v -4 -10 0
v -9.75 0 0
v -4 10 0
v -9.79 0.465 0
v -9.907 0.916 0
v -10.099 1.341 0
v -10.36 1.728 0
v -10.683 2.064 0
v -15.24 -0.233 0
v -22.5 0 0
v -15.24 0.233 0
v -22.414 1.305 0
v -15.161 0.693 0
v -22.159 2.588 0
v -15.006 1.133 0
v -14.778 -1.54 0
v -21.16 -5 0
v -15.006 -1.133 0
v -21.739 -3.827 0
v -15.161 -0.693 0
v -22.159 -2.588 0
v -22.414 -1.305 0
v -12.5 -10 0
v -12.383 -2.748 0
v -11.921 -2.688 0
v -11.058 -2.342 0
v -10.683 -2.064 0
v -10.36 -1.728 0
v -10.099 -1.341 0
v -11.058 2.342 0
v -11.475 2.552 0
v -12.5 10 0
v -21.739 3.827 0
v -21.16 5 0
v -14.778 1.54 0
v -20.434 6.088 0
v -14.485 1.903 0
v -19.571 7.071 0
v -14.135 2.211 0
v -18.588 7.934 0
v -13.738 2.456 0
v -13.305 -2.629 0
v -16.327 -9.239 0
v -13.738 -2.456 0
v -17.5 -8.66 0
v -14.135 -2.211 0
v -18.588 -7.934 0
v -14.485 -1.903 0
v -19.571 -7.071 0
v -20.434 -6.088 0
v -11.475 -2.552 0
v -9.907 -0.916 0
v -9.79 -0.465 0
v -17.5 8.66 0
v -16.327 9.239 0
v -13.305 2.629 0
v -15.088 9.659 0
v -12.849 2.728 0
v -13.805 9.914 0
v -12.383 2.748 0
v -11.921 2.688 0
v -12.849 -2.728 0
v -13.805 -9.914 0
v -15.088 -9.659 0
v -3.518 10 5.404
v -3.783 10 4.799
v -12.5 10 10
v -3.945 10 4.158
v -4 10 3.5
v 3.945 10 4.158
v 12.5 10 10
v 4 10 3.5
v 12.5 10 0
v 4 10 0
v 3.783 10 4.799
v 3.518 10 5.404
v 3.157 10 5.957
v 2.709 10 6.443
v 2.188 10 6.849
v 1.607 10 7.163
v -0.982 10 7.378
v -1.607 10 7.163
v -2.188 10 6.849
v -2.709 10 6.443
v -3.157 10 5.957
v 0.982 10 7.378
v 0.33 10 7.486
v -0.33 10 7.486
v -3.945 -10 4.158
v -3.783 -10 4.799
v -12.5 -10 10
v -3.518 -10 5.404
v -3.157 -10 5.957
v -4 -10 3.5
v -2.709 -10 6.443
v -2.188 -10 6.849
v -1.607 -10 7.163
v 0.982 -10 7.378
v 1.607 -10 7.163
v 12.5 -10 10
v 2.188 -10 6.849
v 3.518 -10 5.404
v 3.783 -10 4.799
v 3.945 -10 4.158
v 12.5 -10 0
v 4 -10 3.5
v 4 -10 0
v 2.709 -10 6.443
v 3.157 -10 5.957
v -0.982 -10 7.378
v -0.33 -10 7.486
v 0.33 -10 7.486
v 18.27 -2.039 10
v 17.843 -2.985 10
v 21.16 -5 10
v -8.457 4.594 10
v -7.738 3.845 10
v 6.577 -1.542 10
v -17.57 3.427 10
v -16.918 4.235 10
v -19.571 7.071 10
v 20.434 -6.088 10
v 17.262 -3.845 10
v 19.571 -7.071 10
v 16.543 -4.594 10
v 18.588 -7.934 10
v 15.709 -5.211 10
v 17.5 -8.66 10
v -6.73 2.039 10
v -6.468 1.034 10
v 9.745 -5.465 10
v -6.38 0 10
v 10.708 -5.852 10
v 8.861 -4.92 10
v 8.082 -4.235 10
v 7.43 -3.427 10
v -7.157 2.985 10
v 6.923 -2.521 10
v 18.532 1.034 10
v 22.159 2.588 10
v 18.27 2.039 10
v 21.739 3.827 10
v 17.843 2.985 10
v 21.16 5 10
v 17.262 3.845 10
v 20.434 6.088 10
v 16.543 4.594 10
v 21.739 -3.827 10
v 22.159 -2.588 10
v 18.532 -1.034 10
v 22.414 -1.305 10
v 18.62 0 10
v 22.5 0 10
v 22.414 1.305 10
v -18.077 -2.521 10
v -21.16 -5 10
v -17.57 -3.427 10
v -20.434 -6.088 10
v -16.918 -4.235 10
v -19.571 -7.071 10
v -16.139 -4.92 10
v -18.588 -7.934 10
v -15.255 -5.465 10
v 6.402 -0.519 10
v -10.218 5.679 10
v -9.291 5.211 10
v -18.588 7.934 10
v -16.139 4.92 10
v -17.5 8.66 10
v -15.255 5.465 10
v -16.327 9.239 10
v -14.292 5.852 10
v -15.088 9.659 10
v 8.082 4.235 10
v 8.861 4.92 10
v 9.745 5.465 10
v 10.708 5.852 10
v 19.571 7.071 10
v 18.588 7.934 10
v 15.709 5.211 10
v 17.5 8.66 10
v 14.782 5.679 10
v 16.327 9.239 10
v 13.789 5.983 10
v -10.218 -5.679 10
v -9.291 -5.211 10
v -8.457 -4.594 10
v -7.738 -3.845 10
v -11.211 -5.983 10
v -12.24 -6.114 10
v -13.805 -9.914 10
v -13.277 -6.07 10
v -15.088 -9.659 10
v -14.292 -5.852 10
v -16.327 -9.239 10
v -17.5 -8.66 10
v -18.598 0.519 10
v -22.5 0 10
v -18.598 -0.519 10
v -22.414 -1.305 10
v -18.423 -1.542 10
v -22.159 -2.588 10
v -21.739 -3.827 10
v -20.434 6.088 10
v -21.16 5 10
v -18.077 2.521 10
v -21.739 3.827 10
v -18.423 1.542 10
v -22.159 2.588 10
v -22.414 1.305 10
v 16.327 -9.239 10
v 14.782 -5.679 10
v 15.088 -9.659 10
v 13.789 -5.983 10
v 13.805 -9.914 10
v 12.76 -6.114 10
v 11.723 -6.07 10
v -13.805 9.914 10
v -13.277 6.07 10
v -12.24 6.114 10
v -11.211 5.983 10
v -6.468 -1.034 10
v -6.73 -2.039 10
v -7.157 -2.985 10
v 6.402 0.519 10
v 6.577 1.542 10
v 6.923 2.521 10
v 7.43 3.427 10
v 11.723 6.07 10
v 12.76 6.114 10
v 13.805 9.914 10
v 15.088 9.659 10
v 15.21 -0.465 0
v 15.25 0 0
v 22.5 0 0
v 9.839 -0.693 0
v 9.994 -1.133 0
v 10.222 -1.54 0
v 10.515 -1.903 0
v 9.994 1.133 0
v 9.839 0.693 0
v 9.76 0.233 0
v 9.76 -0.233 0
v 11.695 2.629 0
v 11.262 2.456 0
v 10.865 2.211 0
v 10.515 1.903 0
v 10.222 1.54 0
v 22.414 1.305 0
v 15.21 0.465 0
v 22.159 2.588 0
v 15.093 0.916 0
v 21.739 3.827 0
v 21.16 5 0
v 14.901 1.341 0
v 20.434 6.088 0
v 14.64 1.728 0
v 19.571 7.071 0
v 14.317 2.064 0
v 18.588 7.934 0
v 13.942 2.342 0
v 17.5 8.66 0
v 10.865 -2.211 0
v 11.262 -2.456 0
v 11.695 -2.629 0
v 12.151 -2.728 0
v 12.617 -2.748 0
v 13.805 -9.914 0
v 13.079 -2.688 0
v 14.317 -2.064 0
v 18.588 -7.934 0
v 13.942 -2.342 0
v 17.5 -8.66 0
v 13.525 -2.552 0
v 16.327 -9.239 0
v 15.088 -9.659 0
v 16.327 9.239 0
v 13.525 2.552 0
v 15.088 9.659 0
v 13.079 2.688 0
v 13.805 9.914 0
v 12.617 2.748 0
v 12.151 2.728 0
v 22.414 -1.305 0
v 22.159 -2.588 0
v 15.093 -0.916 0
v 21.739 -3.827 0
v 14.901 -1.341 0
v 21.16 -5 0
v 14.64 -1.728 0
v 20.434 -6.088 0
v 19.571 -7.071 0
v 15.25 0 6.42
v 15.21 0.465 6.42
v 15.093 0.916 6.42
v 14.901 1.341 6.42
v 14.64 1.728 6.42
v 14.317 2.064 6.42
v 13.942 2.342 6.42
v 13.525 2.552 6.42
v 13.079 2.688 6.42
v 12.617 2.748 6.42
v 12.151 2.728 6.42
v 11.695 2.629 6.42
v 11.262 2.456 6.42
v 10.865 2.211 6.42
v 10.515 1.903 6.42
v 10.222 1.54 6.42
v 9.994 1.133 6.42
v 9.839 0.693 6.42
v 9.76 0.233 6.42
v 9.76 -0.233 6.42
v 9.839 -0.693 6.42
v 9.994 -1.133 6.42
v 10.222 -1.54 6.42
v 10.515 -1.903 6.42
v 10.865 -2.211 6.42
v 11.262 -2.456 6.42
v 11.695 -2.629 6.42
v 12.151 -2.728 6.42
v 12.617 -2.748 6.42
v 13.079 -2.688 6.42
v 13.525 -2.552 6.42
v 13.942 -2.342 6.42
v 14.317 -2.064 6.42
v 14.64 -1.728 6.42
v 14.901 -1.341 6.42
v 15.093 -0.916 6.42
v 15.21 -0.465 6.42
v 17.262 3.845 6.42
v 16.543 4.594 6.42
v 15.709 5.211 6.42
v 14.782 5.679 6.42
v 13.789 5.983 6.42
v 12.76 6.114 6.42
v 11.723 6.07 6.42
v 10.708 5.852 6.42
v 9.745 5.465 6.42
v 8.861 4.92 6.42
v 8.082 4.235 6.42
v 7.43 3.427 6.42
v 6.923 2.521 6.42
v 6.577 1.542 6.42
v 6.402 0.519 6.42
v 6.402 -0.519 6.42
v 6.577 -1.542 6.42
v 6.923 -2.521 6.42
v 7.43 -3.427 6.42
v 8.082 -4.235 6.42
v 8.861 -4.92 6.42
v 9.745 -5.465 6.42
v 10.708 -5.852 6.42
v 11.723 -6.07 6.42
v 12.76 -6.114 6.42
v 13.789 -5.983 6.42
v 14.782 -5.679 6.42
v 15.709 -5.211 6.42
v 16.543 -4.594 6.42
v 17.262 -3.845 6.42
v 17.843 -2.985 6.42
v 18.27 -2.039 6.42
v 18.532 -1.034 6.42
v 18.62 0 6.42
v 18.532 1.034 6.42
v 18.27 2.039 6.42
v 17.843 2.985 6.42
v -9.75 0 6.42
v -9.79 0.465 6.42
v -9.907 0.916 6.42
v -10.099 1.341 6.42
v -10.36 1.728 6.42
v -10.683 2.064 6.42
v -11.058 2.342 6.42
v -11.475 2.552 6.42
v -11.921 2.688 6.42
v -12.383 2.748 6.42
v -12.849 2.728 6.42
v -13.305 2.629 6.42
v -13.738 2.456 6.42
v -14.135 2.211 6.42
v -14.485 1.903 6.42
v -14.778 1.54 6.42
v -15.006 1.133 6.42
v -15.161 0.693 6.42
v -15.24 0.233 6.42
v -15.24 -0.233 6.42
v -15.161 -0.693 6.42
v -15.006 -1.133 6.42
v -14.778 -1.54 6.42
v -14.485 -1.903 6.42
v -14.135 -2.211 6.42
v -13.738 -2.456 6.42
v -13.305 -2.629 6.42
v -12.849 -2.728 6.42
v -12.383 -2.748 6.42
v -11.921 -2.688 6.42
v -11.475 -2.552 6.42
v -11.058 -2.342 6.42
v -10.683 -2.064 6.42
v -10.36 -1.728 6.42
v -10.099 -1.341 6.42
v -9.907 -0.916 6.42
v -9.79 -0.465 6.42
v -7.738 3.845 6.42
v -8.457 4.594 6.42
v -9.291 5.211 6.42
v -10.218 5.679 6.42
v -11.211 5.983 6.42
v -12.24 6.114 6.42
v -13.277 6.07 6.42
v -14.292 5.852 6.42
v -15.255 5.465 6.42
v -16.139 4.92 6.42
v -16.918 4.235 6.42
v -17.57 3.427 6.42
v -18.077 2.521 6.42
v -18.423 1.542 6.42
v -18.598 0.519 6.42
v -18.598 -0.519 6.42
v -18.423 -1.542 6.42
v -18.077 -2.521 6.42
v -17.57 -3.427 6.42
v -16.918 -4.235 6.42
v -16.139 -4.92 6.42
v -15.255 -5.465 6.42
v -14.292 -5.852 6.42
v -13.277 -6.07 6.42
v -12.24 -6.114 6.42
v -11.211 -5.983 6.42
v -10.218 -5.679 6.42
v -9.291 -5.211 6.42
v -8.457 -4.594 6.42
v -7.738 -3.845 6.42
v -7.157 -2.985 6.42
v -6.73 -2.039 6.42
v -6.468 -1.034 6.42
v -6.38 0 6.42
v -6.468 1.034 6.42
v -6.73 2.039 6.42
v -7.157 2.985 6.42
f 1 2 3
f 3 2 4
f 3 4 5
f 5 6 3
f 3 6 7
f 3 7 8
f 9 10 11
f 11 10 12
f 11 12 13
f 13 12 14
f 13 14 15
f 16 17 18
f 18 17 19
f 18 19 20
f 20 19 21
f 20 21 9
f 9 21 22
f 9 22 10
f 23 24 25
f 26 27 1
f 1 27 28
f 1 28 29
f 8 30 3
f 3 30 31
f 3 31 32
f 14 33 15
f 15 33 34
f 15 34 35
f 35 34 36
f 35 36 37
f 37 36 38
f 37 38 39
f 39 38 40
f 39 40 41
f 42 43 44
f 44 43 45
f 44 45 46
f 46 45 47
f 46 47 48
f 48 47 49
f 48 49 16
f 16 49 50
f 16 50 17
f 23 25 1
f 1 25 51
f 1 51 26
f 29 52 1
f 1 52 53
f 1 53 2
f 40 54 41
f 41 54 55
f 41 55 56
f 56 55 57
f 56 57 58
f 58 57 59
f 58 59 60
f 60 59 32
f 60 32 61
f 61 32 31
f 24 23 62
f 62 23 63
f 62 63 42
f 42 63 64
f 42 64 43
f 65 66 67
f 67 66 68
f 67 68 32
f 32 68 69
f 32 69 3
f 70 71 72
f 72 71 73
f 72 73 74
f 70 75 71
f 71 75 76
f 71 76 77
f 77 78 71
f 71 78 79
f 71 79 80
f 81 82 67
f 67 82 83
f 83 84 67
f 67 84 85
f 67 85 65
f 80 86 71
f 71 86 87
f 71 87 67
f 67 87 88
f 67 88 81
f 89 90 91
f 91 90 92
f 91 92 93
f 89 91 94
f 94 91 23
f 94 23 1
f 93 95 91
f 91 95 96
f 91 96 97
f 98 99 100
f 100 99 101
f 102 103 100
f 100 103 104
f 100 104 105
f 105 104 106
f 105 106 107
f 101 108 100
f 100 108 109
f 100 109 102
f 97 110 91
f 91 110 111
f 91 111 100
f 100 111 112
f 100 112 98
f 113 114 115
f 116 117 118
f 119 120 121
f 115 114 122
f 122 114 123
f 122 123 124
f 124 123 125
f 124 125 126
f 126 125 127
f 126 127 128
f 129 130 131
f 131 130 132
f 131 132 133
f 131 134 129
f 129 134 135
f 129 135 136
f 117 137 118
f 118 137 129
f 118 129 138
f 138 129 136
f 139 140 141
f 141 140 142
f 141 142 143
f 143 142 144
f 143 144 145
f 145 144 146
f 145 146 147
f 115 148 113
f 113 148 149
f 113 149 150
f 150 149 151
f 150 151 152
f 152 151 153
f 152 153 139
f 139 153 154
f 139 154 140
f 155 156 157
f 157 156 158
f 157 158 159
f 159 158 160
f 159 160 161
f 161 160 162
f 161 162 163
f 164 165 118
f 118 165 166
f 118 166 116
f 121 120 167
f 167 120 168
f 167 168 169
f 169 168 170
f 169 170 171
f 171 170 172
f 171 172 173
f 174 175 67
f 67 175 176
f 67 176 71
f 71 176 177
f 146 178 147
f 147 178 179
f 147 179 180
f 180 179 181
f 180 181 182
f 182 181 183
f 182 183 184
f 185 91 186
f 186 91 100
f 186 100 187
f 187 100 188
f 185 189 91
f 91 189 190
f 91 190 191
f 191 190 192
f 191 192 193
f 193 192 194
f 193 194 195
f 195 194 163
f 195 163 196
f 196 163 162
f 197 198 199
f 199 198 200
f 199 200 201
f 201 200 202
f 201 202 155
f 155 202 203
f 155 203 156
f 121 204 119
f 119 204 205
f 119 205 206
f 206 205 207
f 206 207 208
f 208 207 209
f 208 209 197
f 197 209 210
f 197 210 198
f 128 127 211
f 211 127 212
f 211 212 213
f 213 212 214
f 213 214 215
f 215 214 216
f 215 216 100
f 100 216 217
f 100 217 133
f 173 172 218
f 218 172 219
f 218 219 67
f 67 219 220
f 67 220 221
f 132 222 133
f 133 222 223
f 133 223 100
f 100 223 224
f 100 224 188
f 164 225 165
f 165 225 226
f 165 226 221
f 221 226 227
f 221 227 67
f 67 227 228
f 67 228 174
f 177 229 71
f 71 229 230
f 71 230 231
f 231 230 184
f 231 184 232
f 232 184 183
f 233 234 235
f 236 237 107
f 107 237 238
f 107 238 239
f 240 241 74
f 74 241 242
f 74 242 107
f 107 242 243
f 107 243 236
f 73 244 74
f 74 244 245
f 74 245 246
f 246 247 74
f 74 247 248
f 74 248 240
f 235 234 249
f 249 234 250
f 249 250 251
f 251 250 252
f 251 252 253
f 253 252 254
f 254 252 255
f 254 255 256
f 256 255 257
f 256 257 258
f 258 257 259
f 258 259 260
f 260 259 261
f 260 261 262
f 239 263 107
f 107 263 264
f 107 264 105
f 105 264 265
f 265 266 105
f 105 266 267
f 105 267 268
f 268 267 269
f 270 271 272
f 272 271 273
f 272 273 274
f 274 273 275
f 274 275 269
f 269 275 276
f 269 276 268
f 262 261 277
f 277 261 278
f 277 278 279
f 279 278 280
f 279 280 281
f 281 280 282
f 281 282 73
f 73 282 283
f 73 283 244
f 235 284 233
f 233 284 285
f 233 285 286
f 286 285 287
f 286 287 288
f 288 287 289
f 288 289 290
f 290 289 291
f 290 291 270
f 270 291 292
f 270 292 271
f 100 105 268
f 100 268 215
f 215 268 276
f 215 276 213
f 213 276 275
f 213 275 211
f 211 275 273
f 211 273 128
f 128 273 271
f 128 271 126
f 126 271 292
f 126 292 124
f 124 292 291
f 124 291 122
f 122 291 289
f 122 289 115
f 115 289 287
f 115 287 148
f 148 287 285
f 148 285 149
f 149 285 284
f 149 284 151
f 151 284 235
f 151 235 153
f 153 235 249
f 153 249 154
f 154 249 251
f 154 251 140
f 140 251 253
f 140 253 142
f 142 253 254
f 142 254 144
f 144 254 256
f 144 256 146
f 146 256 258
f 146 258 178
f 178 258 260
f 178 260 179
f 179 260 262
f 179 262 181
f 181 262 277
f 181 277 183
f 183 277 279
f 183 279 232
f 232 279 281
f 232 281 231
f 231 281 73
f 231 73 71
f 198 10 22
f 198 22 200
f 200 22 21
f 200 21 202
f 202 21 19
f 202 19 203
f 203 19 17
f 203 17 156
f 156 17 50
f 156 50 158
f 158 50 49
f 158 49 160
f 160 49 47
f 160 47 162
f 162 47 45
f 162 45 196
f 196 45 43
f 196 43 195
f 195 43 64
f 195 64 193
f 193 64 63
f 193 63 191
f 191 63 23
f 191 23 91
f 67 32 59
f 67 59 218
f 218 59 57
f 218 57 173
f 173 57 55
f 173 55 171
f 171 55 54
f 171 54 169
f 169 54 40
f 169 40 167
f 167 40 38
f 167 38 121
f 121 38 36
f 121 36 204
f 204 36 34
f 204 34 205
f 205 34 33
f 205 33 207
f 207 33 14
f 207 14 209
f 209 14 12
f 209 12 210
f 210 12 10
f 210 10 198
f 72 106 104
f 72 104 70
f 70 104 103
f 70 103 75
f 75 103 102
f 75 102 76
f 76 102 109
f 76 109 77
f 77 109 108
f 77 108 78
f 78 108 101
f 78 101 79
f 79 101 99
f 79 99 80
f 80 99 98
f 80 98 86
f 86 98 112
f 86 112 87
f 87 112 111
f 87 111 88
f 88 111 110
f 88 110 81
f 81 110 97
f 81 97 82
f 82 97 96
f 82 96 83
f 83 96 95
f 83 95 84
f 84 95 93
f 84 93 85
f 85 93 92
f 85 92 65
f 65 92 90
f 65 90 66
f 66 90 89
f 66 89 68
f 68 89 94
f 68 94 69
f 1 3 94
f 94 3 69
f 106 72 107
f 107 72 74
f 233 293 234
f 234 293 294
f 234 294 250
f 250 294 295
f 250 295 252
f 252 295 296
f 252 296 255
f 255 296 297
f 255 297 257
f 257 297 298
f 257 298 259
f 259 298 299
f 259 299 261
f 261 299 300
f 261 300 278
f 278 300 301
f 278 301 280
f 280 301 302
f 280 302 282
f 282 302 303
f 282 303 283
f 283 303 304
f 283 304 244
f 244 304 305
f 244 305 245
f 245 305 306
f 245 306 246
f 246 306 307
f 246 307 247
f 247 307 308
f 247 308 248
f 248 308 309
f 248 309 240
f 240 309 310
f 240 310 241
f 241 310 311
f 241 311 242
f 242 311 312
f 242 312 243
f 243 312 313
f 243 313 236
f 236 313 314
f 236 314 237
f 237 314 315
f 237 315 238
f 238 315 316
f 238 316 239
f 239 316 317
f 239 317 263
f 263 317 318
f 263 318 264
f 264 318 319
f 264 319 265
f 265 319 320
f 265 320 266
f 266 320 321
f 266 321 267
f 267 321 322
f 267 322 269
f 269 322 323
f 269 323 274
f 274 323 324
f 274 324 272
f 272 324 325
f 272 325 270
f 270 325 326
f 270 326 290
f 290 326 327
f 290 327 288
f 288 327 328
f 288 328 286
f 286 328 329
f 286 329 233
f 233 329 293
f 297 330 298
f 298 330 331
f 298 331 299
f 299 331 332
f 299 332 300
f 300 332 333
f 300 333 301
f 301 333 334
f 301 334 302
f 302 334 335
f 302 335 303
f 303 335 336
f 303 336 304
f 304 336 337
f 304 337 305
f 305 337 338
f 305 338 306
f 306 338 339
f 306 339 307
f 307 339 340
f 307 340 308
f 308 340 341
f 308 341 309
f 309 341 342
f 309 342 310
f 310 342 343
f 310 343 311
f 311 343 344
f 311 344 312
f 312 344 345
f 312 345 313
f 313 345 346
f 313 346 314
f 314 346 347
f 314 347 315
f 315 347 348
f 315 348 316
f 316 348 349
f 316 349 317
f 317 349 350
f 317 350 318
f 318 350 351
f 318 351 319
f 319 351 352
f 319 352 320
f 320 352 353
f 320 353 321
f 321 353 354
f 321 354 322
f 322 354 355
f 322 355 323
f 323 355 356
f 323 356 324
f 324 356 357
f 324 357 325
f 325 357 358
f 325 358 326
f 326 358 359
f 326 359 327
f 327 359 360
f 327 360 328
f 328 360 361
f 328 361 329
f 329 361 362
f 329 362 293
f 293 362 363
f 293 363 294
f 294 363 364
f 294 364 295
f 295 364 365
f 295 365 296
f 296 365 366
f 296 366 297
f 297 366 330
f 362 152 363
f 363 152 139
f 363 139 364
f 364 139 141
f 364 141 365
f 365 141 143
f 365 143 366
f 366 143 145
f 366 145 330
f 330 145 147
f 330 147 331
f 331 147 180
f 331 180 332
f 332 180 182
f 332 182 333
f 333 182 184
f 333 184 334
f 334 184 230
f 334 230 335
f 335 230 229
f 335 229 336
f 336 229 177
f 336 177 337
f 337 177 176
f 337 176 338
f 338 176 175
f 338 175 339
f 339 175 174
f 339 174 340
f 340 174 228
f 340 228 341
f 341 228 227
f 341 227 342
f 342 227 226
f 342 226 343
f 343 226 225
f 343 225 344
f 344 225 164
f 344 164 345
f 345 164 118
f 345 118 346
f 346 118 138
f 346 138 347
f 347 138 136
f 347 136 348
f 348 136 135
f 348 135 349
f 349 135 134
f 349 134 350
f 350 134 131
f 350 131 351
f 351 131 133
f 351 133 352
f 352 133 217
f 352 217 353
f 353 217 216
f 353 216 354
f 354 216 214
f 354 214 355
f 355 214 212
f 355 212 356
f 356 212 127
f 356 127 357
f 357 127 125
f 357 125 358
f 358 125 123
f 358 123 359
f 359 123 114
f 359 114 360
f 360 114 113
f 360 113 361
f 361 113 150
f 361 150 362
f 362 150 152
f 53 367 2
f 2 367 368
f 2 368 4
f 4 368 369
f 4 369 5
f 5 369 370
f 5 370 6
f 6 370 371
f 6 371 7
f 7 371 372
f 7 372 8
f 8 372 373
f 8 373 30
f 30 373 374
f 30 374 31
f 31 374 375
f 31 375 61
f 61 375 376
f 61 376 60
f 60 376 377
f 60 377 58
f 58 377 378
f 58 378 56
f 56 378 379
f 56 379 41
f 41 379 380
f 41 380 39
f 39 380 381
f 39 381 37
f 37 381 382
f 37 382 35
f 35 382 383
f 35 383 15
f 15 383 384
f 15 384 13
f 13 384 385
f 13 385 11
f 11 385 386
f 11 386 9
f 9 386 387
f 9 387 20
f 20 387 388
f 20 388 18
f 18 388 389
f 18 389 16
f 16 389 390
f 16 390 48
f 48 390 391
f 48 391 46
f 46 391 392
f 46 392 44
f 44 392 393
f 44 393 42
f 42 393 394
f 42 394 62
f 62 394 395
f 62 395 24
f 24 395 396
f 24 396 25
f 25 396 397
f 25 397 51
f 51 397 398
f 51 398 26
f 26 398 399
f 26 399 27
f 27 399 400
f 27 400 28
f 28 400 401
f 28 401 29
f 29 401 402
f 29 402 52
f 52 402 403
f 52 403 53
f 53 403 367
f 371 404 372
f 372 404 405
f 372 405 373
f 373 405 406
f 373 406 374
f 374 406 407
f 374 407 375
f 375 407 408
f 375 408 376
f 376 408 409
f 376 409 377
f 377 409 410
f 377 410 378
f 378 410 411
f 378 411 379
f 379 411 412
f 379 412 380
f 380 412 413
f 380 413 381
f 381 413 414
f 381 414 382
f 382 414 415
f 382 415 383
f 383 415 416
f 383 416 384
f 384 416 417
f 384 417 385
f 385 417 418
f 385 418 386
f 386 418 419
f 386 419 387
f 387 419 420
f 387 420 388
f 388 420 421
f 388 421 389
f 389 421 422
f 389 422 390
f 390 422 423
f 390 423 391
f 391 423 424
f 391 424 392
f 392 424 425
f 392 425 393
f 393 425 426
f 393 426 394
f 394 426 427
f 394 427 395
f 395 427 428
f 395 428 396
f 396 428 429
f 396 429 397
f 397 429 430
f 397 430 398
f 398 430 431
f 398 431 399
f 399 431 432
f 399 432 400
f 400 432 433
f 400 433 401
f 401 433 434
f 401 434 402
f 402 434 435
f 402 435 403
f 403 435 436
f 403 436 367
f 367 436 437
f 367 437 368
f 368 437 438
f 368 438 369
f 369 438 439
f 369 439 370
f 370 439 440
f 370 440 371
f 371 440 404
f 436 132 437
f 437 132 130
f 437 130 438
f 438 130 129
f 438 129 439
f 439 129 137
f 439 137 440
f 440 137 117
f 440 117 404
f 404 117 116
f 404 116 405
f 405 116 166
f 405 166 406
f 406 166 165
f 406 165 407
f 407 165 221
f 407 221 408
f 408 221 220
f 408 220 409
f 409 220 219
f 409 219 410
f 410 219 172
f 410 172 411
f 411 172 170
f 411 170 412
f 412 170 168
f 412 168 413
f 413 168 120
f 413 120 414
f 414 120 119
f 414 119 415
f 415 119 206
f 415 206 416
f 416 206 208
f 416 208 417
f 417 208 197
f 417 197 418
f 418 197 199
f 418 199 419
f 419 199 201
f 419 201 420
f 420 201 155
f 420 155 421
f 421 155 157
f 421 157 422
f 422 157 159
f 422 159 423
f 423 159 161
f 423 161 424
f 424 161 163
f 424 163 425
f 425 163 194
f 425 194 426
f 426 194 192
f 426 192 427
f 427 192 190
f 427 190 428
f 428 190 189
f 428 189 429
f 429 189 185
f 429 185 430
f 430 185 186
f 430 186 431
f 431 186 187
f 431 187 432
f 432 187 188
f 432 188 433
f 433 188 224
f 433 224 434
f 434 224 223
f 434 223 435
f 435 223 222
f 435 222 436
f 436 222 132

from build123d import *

# Parameters (mm, degrees)
SKETCH2_W                               = 45
SKETCH2_H                               = 20
BOSS_EXTRUDE2_DEPTH                     = 10
FILLET1_R                               = 10
CUT_EXTRUDE1_DEPTH                      = 22
CBORE_FOR_M5_HEX_HEAD_BOLT1_D           = 5.5
CBORE_FOR_M5_HEX_HEAD_BOLT1_CBORE_D     = 12.24
CBORE_FOR_M5_HEX_HEAD_BOLT1_CBORE_DEPTH = 3.58


with BuildPart() as part:
    # Sketch2 → Boss-Extrude2 (new body)
    with BuildSketch(Plane.XY):
        Rectangle(SKETCH2_W, SKETCH2_H)
    extrude(amount=BOSS_EXTRUDE2_DEPTH)

    # Fillet1
    fillet1_edges = [part.edges().sort_by_distance(p)[0] for p in [
        (22.5, 10, 5),
        (22.5, -10, 5),
        (-22.5, 10, 5),
        (-22.5, -10, 5),
    ]]
    fillet(fillet1_edges, radius=FILLET1_R - 0.0001)  # a hair under: the kernel refuses the full size

    # Sketch3 → Cut-Extrude1 (cut)
    with BuildSketch(Plane.XZ.offset(10)):
        with BuildLine():
            Line((-4, 0), (-4, 3.5))
            ThreePointArc((-4, 3.5), (0, 7.5), (4, 3.5))
            Line((4, 3.5), (4, 0))
            ThreePointArc((4, 0), (0, -4), (-4, 0))
        make_face()
    extrude(amount=-CUT_EXTRUDE1_DEPTH, mode=Mode.SUBTRACT)

    # CBORE for M5 Hex Head Bolt1 (through all)
    with Locations(Plane.XY.offset(10)):
        with Locations((-12.5, 0), (12.5, 0)):
            CounterBoreHole(CBORE_FOR_M5_HEX_HEAD_BOLT1_D / 2, CBORE_FOR_M5_HEX_HEAD_BOLT1_CBORE_D / 2, CBORE_FOR_M5_HEX_HEAD_BOLT1_CBORE_DEPTH)


solid = part.part
